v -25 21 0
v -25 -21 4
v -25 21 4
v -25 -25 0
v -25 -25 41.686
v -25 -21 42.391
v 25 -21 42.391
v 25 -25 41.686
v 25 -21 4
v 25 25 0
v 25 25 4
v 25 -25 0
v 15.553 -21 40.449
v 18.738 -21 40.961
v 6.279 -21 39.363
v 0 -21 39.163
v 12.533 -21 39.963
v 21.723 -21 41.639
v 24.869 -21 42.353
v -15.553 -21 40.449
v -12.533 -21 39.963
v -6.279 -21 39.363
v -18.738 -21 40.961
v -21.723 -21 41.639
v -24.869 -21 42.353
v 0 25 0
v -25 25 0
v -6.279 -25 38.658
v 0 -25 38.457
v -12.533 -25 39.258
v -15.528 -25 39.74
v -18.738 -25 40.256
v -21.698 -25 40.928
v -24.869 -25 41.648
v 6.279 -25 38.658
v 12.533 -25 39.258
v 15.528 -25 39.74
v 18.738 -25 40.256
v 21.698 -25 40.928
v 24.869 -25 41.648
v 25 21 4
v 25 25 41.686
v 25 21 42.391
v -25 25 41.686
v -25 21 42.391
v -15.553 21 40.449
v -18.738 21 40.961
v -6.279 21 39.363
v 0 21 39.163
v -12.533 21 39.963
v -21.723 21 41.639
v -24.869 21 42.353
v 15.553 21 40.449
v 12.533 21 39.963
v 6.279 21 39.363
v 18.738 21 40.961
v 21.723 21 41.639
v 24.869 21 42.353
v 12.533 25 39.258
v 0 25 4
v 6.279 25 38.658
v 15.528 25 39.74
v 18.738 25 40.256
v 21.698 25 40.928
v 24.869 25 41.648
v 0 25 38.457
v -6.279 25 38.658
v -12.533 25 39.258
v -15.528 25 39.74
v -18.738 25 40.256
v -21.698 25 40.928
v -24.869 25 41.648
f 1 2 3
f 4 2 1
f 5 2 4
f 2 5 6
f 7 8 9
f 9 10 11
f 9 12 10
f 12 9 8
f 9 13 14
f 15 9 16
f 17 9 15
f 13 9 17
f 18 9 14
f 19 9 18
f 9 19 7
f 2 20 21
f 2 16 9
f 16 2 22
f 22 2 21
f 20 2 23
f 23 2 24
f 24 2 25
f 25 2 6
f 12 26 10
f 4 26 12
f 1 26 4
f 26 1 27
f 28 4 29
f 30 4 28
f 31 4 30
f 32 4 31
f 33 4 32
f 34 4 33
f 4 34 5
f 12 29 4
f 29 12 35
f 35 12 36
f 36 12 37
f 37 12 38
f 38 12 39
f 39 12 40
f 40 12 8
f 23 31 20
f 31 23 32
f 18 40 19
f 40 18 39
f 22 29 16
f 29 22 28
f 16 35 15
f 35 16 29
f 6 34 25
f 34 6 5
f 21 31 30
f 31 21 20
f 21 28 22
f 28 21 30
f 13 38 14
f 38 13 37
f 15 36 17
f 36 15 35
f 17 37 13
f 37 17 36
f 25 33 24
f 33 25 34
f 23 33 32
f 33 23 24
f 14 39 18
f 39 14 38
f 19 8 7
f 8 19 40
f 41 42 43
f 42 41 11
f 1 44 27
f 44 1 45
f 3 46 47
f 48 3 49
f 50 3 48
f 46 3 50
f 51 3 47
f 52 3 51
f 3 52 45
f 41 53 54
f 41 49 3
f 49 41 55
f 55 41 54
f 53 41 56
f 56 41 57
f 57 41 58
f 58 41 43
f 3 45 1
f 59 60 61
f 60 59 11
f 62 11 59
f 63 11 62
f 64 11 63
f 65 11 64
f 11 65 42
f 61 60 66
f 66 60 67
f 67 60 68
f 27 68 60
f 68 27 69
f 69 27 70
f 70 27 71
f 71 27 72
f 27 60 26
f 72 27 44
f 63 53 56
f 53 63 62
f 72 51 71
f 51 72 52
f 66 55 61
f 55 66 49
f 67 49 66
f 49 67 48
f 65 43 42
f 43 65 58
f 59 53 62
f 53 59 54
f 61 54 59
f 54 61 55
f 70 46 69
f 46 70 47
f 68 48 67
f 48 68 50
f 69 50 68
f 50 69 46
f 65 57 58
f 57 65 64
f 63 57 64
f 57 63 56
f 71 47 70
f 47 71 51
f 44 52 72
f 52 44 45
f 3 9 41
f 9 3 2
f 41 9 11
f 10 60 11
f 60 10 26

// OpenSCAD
$fn = 100;

// Base plate
translate([-25, -25, 0]) cube([50, 50, 4]);

// Sides
module side(){
    difference(){
        translate([-25, 0, 0]) cube([50, 4, 50]);
        translate([0, 0, 140]) rotate([100, 0, 0]) cylinder(h=1000, r=100, center=true);
    }
}

translate([0, -25, 0]) side();
translate([0, 25, 0]) rotate([0, 0, 180]) side();
